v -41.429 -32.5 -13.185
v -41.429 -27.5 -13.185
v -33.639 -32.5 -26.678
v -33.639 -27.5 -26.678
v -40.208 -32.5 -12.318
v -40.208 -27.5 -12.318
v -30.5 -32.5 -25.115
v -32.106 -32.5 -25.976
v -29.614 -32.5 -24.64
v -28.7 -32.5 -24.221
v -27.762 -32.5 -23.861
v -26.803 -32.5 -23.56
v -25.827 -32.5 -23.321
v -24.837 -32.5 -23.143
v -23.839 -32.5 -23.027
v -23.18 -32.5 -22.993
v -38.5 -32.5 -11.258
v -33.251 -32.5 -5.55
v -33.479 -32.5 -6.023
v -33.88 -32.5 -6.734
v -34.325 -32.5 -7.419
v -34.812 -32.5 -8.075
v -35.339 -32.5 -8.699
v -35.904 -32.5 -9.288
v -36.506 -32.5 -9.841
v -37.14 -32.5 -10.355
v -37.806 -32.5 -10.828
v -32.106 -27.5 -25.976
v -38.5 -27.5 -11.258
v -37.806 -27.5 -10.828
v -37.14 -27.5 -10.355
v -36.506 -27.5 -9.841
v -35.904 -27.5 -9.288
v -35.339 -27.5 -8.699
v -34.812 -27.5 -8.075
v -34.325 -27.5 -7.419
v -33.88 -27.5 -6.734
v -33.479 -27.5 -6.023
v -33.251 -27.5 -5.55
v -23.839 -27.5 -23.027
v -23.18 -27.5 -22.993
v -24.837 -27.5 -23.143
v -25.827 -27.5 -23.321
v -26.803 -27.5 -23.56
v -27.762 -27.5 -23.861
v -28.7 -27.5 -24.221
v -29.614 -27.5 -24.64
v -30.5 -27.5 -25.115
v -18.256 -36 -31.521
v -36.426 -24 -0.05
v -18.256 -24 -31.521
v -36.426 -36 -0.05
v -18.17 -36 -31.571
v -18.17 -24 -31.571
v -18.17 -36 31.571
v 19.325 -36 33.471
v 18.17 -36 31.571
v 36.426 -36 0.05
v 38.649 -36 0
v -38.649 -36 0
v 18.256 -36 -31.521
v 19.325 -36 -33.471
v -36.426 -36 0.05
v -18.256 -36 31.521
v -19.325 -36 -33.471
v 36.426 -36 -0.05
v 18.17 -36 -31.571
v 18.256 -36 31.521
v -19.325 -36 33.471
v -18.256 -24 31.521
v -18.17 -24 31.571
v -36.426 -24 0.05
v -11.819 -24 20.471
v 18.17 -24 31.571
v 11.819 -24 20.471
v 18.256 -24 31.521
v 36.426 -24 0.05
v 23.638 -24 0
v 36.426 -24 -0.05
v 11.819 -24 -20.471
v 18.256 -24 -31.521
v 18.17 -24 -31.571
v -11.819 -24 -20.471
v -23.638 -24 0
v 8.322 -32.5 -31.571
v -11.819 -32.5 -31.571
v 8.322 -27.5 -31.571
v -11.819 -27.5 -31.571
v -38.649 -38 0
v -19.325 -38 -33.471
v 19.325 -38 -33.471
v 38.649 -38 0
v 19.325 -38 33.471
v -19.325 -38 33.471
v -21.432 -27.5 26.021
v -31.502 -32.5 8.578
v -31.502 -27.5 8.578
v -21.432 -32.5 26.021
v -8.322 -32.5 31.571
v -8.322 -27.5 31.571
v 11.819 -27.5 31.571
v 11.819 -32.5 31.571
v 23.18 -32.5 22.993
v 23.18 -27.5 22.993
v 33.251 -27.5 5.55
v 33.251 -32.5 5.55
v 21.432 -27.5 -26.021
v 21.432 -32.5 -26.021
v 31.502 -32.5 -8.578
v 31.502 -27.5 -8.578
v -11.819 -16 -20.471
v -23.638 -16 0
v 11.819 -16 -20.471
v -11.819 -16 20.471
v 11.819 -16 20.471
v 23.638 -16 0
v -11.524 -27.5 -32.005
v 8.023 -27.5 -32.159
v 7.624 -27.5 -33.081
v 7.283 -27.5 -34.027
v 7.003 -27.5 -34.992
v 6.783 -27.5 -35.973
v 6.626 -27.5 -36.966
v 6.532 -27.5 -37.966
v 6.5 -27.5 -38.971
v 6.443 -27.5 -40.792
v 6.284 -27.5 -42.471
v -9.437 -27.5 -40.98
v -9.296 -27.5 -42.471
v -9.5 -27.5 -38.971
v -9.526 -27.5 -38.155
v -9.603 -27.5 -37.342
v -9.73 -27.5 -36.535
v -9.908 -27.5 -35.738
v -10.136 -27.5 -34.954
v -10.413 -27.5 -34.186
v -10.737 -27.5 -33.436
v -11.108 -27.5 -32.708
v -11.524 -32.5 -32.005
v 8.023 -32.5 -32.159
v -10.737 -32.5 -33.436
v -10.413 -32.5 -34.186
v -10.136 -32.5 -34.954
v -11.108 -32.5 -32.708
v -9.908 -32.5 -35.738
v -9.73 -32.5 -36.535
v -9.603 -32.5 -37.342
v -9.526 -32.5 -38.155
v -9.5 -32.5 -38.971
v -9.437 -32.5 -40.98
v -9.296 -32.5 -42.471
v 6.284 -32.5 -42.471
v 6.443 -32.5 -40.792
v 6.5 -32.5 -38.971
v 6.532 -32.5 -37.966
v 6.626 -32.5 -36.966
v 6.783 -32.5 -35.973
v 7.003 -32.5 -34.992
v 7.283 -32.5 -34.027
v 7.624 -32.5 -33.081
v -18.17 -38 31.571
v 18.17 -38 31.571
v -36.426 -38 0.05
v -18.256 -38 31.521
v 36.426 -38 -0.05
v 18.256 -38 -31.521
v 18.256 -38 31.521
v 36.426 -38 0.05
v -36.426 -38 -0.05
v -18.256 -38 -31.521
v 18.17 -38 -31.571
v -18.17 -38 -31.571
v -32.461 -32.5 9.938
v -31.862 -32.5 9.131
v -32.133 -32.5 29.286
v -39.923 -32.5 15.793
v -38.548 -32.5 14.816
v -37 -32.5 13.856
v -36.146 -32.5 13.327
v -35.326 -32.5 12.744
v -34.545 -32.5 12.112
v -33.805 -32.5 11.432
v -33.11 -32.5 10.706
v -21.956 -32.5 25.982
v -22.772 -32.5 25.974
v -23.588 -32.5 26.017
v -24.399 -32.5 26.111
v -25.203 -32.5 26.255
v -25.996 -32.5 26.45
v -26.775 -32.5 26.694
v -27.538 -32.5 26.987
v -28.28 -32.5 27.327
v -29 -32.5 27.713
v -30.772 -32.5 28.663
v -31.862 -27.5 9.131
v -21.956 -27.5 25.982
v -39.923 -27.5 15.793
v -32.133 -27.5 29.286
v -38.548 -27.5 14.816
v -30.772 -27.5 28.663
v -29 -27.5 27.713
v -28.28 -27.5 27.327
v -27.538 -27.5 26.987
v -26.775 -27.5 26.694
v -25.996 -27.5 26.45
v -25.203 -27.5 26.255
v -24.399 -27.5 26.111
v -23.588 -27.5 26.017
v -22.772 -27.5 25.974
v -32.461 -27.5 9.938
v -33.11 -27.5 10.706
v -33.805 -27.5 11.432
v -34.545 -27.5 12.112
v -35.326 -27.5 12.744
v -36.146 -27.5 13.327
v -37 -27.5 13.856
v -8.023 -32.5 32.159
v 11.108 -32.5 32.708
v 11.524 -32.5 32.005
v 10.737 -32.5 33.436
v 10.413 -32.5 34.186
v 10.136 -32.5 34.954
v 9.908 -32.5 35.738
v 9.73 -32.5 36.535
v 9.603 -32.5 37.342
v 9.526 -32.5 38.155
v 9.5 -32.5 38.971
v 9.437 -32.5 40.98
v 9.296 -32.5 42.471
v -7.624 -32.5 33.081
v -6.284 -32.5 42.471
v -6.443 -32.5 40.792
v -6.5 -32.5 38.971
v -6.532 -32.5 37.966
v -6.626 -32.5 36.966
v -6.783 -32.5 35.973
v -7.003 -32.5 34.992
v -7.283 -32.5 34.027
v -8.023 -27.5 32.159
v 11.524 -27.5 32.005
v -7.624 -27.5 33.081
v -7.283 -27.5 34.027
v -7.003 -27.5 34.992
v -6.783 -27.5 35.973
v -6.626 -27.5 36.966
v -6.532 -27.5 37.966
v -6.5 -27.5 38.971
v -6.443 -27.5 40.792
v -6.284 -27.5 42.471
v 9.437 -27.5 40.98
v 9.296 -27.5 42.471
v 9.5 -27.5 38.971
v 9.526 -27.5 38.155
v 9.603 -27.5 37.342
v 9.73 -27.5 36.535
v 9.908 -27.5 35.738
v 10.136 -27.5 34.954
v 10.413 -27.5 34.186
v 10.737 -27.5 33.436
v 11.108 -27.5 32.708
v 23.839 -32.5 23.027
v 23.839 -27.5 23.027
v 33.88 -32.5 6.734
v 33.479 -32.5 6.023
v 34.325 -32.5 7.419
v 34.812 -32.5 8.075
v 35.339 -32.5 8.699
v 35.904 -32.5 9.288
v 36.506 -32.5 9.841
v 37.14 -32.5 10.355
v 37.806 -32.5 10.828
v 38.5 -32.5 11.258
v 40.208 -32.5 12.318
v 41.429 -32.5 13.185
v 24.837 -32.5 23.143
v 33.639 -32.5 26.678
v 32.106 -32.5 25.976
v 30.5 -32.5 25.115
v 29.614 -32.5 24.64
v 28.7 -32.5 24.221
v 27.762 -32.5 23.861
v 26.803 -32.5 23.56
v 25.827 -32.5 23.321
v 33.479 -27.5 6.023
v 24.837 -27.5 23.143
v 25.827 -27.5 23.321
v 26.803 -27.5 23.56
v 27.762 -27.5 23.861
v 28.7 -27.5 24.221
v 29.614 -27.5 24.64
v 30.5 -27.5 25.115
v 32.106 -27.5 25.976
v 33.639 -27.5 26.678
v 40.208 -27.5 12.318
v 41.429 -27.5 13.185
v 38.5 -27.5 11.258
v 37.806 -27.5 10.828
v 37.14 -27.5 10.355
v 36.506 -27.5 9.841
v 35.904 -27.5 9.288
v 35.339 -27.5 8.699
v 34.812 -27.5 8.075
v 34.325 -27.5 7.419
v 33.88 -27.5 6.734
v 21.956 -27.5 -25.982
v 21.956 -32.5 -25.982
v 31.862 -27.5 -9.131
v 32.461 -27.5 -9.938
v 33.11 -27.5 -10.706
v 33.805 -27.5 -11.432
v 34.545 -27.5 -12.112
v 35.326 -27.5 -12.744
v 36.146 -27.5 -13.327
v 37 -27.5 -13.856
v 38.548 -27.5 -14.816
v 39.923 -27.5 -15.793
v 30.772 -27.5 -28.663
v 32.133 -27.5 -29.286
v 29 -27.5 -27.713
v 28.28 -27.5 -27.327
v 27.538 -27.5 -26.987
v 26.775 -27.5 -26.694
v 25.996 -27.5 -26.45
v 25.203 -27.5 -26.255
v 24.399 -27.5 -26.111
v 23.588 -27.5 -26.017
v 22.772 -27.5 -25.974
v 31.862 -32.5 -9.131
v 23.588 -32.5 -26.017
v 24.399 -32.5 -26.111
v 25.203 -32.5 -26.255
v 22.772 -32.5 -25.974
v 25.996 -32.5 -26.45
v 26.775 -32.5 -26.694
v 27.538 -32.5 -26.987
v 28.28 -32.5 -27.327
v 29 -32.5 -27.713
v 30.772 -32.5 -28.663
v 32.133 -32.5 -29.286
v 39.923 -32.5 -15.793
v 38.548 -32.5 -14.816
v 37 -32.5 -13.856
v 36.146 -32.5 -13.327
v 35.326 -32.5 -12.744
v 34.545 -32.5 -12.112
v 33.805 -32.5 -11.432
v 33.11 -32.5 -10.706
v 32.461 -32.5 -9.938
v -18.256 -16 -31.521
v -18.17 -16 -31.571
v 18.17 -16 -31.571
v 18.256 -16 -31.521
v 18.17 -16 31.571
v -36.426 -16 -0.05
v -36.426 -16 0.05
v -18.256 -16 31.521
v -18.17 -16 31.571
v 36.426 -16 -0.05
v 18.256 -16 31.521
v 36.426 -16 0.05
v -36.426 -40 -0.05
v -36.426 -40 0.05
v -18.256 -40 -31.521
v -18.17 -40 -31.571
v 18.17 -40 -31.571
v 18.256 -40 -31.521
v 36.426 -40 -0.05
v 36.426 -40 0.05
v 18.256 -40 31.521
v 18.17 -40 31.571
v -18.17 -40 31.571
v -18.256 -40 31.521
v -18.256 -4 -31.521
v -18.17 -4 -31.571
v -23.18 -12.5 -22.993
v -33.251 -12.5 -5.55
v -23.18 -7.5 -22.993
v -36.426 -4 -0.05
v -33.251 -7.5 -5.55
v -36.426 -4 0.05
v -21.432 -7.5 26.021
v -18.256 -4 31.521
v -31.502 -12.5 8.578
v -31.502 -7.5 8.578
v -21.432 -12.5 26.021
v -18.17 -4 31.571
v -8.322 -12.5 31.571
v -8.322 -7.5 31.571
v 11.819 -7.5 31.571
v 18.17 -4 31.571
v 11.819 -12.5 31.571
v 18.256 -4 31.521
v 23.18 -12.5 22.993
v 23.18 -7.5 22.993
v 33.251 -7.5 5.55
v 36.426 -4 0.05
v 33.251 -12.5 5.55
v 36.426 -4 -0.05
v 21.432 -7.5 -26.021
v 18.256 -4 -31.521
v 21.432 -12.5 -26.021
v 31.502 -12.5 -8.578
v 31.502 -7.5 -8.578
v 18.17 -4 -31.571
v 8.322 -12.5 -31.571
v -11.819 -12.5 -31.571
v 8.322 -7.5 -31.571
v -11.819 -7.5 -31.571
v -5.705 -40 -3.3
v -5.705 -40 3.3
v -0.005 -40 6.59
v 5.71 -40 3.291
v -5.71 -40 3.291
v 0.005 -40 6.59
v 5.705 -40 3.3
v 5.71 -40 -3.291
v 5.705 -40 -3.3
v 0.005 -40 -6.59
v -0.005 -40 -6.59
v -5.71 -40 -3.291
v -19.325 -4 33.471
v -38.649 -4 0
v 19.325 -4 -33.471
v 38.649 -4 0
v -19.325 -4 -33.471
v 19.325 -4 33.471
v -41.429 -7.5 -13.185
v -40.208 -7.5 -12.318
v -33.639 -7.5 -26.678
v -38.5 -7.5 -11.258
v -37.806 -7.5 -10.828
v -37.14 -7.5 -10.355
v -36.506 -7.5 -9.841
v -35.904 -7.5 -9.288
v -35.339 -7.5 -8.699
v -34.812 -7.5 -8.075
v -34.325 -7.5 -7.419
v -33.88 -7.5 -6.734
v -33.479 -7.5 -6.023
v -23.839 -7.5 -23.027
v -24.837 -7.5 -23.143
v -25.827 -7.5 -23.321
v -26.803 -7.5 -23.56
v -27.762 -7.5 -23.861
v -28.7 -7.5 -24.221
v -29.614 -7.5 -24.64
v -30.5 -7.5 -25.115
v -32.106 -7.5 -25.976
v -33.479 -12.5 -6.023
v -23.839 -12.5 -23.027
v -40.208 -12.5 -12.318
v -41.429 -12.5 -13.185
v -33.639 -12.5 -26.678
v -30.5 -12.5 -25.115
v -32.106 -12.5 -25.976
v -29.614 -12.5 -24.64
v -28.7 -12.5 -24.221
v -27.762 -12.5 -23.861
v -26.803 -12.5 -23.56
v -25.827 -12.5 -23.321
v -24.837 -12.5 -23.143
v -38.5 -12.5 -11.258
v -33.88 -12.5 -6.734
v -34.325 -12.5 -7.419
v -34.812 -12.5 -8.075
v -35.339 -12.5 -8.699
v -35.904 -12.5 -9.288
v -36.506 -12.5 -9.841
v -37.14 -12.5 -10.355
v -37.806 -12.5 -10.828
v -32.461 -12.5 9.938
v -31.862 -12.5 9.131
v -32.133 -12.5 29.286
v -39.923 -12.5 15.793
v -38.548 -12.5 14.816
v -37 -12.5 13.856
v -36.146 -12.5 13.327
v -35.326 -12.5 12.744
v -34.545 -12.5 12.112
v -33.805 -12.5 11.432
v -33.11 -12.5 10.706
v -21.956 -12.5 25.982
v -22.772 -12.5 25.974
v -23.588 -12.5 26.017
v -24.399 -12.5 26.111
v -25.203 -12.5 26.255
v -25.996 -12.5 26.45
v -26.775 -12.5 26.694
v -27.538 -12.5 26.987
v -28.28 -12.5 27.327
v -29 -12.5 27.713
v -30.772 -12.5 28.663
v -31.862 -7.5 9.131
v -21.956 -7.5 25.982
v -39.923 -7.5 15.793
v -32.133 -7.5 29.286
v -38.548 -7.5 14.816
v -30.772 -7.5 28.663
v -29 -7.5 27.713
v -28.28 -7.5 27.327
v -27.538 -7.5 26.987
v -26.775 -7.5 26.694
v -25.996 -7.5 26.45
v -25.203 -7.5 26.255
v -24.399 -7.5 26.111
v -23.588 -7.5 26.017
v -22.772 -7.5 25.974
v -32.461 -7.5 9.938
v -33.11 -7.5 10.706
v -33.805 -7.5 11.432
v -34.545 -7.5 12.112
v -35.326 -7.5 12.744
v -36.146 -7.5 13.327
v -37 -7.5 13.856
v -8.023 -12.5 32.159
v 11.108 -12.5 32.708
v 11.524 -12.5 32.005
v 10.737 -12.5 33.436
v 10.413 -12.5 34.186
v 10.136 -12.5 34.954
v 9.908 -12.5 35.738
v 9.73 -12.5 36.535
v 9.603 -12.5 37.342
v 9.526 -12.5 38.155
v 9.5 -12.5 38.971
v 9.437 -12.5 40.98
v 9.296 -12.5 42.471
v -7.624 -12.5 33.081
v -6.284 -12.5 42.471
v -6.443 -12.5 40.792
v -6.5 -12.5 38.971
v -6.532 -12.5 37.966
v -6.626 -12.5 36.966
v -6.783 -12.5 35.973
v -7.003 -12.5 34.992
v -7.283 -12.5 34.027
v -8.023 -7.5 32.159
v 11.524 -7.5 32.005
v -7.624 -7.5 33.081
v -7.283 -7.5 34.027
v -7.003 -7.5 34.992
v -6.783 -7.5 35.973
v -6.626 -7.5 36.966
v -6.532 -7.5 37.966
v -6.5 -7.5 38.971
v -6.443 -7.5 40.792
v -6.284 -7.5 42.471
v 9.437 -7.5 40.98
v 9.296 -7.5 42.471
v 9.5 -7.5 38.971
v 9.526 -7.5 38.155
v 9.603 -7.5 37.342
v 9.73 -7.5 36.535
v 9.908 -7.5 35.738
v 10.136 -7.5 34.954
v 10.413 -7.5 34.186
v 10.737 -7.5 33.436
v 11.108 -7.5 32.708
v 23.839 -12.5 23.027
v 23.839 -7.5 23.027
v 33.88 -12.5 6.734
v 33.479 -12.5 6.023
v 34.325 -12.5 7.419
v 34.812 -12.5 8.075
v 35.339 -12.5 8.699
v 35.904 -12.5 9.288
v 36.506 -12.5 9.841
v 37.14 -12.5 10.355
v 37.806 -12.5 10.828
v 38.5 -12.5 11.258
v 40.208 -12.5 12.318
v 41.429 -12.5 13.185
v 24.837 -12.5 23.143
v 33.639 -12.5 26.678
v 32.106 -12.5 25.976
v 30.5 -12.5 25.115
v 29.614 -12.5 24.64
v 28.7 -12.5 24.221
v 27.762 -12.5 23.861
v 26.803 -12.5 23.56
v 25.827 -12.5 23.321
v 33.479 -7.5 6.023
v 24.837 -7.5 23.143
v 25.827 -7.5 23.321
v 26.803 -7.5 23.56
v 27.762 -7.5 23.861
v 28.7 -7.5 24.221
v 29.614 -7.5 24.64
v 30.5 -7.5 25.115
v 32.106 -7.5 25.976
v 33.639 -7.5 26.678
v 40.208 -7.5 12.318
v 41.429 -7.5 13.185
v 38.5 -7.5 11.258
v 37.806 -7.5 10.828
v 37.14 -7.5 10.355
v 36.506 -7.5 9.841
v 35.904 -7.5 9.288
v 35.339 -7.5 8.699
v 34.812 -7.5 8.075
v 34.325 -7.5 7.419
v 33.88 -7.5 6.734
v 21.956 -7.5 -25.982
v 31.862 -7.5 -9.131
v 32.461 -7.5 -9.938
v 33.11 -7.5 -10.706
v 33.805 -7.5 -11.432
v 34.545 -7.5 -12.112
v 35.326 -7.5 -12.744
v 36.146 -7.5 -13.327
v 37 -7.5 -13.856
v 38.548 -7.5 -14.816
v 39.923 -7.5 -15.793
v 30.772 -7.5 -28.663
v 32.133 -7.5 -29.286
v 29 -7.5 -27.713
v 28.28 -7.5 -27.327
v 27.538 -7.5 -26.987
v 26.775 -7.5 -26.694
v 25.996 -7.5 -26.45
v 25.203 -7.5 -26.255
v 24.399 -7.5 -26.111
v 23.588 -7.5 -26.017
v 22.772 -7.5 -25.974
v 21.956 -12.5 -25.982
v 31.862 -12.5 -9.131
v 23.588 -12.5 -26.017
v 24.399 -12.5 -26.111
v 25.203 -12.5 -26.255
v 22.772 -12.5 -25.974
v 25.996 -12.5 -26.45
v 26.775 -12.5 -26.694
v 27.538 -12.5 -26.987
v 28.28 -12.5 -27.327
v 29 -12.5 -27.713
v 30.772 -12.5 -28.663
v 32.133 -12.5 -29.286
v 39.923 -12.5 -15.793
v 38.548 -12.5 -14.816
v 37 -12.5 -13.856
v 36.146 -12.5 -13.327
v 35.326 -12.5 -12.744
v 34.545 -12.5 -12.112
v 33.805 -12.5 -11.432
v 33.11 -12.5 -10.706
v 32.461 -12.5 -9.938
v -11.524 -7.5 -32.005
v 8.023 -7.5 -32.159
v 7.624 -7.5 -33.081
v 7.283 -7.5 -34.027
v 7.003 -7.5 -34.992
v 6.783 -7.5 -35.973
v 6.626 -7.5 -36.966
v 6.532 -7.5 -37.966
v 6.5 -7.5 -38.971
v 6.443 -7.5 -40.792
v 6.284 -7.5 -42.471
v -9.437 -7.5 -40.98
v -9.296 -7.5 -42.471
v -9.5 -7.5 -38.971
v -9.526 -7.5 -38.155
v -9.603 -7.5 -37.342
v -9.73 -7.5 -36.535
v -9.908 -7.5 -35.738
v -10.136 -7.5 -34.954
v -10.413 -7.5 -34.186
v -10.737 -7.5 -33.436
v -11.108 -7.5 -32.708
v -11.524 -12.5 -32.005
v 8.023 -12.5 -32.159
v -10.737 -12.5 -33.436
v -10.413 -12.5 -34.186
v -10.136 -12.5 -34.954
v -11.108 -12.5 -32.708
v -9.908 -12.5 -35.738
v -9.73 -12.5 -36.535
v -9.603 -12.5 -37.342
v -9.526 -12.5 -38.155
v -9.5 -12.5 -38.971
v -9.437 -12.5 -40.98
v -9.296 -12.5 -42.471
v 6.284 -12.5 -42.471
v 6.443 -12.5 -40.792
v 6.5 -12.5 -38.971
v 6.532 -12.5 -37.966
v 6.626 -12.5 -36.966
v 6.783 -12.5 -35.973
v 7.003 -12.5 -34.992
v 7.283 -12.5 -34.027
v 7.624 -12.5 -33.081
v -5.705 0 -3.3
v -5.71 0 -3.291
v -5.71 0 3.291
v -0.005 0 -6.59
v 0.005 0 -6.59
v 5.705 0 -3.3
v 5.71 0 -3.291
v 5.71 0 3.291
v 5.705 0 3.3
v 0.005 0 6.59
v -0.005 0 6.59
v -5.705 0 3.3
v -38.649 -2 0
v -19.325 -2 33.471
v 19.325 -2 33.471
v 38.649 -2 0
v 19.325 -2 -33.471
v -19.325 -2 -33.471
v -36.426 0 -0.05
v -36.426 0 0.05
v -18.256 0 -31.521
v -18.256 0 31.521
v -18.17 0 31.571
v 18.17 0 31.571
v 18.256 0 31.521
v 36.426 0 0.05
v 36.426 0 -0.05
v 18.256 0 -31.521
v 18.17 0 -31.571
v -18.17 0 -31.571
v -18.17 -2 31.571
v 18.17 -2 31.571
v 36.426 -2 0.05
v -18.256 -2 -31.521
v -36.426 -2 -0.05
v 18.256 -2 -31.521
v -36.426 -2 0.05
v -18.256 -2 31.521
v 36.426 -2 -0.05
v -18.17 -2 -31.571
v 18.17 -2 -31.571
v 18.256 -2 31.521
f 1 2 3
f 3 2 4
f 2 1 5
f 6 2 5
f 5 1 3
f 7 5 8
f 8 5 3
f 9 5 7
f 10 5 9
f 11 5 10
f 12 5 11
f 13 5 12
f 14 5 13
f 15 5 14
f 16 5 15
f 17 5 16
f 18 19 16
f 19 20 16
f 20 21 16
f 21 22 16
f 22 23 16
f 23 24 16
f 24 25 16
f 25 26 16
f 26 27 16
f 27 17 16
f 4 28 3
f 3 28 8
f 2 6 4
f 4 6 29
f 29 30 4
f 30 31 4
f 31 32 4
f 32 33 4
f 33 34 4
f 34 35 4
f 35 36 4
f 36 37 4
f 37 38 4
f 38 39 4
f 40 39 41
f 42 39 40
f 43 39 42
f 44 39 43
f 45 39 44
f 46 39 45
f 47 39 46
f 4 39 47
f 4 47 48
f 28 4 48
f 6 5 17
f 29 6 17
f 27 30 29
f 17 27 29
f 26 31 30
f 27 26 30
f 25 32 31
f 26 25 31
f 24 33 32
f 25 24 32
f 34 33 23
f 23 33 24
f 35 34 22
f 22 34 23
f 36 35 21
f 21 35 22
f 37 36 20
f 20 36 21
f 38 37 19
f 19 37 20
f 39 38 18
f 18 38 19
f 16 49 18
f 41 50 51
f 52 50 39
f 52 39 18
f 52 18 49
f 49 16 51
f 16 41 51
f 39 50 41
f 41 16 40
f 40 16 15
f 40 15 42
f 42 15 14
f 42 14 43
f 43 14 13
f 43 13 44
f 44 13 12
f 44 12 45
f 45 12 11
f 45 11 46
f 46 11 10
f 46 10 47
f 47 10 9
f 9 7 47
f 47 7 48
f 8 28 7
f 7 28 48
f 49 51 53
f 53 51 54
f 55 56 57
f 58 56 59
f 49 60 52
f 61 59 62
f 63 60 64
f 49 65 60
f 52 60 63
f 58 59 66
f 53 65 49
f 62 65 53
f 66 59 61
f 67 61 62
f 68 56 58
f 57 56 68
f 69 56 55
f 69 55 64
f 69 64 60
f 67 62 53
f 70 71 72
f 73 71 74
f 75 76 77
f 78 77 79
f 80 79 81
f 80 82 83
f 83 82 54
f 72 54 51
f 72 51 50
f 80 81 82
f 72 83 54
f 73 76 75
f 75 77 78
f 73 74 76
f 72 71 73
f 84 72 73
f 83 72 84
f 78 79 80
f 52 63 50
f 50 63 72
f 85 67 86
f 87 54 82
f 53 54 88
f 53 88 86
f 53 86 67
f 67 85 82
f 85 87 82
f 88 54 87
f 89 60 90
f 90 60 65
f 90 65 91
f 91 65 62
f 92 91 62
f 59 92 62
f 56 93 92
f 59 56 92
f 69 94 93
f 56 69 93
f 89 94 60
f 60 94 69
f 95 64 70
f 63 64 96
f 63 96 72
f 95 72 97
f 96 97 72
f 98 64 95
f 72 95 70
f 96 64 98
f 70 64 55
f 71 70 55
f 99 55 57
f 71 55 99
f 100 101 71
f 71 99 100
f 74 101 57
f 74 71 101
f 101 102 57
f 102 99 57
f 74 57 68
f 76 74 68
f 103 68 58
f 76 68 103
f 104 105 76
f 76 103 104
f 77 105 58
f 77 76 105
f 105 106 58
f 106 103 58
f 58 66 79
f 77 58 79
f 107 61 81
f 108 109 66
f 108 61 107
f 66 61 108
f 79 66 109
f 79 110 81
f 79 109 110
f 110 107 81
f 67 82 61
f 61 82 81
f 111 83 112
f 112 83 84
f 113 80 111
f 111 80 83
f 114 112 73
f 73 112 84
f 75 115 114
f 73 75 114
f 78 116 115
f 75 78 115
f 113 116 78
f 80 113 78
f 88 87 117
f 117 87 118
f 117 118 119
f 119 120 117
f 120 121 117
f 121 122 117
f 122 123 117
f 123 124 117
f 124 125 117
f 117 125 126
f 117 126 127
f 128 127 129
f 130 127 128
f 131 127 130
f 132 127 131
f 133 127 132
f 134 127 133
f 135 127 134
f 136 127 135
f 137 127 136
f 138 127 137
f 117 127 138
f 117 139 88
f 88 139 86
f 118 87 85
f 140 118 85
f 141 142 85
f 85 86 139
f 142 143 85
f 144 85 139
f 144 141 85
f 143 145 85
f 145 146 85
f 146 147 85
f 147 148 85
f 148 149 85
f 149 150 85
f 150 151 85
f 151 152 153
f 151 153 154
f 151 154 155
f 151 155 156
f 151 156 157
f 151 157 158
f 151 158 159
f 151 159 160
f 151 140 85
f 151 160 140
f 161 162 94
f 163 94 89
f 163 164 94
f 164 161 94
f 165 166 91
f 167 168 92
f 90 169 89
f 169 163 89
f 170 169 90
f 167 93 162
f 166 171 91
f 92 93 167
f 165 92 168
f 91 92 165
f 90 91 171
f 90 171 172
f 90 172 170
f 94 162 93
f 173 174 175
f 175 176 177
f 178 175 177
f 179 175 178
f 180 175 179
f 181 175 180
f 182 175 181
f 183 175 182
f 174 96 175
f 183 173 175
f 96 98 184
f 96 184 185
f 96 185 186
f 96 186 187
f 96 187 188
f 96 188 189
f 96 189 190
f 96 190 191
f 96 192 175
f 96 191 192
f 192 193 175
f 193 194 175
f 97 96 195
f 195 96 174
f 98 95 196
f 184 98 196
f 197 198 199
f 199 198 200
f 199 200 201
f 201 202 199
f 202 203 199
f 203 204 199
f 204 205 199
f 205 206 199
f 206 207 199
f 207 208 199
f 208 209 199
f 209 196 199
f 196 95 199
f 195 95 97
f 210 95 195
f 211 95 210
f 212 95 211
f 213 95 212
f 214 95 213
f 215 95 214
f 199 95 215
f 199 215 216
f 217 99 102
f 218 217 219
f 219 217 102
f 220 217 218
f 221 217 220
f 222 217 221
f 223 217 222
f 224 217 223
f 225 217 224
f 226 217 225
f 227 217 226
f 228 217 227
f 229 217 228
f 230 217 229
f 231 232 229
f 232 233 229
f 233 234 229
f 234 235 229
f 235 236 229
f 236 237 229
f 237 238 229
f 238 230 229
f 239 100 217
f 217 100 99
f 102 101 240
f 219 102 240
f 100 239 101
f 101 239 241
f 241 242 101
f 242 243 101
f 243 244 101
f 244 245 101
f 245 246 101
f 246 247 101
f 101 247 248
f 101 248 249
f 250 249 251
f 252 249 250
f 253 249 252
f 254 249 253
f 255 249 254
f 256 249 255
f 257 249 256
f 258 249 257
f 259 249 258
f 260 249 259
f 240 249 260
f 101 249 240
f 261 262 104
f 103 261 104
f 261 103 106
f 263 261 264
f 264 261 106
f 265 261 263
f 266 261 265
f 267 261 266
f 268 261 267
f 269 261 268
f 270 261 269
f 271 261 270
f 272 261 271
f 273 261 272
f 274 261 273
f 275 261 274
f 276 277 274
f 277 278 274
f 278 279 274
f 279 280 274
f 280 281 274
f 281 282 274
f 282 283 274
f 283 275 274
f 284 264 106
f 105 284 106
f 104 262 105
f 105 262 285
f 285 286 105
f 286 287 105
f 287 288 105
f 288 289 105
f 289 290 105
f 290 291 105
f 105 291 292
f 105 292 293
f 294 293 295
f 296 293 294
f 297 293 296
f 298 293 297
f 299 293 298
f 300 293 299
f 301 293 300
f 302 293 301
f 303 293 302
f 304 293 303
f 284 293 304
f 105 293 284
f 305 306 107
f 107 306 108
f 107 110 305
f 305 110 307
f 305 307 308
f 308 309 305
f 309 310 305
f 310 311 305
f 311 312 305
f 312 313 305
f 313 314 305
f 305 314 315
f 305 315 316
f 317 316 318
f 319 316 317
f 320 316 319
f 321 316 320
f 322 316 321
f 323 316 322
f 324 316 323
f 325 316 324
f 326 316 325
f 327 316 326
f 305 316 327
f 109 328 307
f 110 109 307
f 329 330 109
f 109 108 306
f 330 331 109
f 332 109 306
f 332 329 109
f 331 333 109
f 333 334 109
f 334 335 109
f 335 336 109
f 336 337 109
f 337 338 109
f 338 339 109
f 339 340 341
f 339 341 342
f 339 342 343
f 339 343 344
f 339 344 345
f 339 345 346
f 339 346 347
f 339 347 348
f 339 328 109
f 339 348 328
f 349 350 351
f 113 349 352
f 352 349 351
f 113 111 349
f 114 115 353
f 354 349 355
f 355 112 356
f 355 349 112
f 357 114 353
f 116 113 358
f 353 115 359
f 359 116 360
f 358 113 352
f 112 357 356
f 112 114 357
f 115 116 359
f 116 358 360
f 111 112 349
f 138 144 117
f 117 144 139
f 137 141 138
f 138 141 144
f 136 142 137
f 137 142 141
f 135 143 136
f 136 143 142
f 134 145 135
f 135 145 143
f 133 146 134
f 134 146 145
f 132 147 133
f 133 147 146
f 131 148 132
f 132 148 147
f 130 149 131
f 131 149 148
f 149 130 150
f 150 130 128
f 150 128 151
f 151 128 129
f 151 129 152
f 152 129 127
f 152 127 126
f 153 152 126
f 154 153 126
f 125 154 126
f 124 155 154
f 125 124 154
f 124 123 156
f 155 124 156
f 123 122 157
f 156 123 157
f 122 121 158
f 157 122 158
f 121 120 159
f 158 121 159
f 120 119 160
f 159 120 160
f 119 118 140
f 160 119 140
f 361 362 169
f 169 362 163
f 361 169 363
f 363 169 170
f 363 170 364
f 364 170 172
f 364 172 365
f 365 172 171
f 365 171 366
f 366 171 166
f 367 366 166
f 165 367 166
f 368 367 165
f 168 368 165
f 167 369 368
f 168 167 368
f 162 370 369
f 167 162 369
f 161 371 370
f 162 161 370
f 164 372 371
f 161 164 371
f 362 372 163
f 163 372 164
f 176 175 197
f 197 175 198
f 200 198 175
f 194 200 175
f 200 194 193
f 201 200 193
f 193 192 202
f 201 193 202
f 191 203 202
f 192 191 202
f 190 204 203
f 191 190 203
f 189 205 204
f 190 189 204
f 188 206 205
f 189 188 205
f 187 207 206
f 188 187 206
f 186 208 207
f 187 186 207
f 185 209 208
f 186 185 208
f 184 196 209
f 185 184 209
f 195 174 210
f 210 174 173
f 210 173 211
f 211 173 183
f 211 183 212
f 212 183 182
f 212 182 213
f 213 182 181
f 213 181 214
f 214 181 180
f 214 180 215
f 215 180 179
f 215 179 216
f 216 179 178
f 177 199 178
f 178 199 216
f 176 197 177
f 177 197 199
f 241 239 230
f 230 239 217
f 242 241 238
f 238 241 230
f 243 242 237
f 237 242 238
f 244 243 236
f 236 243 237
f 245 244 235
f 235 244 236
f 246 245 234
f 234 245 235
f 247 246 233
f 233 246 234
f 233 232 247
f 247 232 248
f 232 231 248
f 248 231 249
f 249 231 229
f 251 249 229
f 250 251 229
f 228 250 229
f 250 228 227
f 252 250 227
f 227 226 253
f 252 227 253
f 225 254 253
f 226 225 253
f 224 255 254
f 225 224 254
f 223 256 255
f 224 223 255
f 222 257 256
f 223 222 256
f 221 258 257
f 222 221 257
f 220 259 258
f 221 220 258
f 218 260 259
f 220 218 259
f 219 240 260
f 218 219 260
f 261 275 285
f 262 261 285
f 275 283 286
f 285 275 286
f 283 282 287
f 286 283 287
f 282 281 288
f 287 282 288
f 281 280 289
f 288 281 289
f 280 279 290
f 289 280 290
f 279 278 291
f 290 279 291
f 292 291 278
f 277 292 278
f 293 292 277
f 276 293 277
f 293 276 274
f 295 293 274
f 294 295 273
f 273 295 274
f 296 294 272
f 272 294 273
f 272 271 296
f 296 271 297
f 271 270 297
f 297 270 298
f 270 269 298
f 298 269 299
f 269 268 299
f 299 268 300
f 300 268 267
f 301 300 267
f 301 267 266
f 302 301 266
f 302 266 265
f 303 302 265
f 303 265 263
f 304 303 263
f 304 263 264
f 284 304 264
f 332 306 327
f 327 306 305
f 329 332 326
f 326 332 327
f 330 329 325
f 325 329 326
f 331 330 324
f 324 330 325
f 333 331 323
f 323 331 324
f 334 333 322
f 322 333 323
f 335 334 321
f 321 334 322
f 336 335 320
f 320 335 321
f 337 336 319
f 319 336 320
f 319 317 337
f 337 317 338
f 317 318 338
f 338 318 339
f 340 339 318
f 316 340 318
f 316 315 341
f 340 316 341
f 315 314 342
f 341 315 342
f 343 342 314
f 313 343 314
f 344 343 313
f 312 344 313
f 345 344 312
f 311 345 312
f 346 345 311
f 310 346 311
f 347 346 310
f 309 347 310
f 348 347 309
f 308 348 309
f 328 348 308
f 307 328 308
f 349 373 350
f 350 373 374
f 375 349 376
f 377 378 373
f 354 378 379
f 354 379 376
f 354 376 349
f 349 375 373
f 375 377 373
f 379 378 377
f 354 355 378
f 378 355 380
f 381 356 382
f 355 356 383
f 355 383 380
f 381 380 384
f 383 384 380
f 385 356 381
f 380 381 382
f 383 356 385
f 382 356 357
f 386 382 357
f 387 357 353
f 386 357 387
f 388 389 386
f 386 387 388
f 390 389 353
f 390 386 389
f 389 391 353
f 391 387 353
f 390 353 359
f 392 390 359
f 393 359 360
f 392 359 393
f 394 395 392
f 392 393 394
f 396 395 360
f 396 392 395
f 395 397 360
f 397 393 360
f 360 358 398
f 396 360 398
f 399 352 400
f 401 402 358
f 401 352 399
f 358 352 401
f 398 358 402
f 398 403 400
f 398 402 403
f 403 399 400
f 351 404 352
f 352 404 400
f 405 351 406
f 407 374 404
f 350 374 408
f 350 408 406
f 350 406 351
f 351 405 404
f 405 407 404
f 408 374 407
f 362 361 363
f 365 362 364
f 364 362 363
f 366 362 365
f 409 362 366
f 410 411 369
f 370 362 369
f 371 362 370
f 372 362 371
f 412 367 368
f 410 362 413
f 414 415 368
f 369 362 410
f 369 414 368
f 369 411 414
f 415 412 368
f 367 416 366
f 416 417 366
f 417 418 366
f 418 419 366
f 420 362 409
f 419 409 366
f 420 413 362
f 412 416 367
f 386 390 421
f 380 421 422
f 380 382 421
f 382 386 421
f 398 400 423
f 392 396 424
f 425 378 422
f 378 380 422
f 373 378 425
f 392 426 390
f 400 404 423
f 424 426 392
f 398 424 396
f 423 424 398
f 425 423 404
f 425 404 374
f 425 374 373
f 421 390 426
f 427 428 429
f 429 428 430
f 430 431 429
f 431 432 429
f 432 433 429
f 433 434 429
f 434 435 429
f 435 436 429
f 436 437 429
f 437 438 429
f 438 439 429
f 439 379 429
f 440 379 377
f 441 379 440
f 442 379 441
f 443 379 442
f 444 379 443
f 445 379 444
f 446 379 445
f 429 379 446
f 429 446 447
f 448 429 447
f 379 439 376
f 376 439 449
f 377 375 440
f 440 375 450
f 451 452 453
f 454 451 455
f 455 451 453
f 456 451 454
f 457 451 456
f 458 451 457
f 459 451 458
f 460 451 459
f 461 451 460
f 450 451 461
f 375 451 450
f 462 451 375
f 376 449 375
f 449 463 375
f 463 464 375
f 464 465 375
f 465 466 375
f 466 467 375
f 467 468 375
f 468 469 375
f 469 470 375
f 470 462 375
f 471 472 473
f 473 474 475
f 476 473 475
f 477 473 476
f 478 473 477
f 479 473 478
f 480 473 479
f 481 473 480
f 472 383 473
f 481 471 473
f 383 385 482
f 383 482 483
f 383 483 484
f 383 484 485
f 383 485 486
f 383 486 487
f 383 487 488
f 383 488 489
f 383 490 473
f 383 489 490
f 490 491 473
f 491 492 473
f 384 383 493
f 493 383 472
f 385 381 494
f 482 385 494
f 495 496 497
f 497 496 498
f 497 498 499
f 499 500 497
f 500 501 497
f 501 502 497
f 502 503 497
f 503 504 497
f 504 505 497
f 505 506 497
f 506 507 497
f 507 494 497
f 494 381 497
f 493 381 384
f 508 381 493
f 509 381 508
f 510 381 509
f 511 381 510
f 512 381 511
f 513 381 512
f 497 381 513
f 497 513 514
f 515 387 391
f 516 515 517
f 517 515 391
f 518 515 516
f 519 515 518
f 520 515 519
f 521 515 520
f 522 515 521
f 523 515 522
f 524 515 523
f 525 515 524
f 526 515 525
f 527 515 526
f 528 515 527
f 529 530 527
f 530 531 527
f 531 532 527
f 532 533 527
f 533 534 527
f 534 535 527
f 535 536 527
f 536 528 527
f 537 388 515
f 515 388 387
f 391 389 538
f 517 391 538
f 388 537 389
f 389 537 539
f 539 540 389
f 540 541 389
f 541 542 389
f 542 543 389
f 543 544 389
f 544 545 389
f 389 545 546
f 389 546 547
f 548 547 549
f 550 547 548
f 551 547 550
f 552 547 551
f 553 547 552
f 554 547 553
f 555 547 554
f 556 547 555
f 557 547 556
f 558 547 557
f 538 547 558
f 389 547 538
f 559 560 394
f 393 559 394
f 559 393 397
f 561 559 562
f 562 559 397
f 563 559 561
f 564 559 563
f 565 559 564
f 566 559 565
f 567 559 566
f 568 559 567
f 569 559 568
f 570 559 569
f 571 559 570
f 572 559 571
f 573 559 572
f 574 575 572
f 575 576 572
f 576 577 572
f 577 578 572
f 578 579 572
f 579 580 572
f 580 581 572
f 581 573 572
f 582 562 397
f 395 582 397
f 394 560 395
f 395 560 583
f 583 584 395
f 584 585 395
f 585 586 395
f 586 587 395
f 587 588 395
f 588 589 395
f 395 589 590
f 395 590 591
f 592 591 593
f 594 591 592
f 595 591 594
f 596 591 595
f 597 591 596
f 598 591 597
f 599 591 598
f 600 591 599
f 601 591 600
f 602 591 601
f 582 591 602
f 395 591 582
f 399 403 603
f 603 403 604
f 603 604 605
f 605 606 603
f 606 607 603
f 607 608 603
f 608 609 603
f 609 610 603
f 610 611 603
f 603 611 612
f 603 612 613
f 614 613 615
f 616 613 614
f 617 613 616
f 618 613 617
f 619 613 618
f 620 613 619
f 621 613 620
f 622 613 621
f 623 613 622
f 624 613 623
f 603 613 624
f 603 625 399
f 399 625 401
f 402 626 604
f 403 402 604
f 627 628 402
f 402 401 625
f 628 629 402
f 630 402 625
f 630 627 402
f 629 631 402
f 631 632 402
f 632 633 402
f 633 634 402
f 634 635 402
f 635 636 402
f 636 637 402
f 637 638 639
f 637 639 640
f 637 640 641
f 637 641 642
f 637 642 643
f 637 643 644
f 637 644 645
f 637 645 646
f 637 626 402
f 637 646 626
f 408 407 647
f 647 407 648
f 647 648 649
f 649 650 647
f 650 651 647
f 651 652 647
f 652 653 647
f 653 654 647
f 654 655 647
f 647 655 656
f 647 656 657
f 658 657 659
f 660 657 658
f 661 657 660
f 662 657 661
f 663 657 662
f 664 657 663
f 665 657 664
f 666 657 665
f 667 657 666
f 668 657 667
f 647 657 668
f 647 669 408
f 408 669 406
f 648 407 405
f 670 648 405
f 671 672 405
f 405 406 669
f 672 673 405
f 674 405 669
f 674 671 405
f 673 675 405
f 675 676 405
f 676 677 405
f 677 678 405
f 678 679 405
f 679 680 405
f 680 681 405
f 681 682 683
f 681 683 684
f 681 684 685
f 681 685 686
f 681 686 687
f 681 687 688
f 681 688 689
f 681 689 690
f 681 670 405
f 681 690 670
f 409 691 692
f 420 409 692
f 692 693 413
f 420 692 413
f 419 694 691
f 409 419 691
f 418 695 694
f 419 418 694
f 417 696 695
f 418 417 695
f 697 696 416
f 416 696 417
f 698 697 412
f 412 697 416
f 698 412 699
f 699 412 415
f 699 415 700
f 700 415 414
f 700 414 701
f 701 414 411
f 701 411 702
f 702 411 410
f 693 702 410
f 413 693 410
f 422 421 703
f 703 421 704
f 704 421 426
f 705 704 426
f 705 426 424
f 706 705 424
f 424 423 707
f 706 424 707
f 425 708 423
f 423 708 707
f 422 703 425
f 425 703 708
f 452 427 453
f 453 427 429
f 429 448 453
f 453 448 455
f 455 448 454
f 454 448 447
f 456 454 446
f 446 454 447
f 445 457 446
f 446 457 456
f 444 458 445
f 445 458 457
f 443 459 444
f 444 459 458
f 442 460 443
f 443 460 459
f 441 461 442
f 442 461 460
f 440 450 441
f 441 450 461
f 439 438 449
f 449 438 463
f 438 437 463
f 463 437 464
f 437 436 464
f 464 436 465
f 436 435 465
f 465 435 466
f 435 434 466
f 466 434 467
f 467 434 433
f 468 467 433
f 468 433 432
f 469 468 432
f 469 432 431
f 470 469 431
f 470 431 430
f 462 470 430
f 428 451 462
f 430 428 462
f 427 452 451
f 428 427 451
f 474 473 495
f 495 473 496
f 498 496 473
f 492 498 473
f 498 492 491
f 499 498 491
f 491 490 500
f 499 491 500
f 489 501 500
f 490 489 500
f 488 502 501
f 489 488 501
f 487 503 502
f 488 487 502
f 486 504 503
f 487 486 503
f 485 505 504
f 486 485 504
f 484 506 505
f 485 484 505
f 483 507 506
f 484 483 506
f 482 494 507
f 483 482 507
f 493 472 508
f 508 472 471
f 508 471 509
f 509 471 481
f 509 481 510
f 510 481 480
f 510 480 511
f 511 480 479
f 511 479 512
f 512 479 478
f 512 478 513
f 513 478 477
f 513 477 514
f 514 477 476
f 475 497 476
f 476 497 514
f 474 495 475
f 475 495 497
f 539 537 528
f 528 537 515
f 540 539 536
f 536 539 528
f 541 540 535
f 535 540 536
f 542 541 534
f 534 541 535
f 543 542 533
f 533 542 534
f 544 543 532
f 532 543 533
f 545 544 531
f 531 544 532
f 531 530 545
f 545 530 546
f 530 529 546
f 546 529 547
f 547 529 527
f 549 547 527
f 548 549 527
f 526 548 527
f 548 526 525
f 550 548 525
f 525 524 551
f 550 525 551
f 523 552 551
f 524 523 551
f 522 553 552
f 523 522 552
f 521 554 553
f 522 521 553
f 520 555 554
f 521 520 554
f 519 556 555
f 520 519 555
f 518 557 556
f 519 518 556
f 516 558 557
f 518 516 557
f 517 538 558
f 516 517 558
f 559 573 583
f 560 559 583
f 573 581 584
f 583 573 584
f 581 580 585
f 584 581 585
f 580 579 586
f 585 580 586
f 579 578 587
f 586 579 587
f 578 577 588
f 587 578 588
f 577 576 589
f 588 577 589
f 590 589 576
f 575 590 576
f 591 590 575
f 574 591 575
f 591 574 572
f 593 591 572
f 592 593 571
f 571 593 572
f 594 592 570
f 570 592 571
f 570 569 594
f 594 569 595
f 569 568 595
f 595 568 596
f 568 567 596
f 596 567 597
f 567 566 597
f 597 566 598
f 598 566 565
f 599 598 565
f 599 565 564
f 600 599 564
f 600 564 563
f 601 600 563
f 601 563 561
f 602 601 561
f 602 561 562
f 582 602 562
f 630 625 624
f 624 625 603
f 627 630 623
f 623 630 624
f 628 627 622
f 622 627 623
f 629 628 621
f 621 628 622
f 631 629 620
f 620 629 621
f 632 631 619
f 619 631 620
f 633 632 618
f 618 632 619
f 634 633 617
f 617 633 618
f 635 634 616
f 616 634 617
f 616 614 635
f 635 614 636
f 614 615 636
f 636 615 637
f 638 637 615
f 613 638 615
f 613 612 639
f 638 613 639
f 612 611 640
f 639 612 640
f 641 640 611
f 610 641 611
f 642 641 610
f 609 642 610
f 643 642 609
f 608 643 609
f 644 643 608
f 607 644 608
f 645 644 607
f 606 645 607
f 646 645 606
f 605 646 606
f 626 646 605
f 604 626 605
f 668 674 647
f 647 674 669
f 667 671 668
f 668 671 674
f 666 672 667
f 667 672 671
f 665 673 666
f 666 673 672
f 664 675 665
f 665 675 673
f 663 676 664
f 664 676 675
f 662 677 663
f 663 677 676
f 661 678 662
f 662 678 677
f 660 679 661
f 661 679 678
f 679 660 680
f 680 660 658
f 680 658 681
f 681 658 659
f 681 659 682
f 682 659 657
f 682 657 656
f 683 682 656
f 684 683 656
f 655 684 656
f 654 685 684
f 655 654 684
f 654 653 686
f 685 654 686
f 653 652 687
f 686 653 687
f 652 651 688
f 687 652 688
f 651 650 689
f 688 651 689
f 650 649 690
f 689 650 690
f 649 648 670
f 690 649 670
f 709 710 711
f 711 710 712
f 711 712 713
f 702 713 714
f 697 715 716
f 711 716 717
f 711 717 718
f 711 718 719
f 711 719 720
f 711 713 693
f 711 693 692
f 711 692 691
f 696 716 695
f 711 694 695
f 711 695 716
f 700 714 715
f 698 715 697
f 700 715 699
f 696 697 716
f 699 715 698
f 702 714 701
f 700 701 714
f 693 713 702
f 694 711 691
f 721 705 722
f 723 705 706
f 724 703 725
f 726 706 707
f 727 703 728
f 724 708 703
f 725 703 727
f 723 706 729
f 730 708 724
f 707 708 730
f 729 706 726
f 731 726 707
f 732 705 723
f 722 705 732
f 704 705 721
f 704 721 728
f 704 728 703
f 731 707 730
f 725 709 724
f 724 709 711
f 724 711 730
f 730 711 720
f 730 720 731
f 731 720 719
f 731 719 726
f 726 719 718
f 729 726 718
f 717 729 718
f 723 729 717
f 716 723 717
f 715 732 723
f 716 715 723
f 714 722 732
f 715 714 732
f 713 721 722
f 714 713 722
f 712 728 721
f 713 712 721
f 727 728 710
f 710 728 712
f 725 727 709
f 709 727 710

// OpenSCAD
$fn = 100;

alT = 45; // Abstand laengs Transportzahn
olT = 15;

L = 1*alT; // Laenge
B = 40;	// Breite
NF = 3; // Anzahl Flansche
rF = 6/2; // Innenradius Flansch
sF = 0.2; // Spiel Flansch auf beweglicher Seite
aFr	= 3; // Abstand Flansch radial
aFa	= 0.5; // Abstand Flansch axial
Hb = 15; // Hoehe Bodenelement
Ht = 25; // Gesamthoehe
angP = 45; // Winkel Profil
LP = 30;

tR = 3;	// Tiefe Rillen fuer Laufrolle
bR = 4; // Breite Rillen fuer Laufrolle
aR = 17; // Abstand Rillen fuer Laufrolle
sR = 1; // Spiel Rillen

tT = 12; // Tiefe Transportzahn
bT = 7; // Breite Transportzahn
lT = 18; // Längen Tranportzahn
sT = 1; // Spiel Transportzahn

asT = 10; // Abstand seitlich Transportzahn

// Nabe
Ni = 6; // Anzahl Kanten
ri = 11.4/2; // Abstand Kante zu Mittelpunkt


NC = 6; // Anzahl Kettenglieder im Eingriff

bFZ = 6; // Breite Fuehrungszahn
hFZ = 10; // Hoehe Fuehrungszahn
sFZ = 1; // Spiel Fuehrungszahn


NR = round(B/aR);
Rerr = (B/aR-NR)*aR/2;

NT = round(L/alT);

// Berechnungen fuer Flansche und deren Abstaende
bfg = B/2-aFa*(NF-1);
bf1 = bfg / NF;
bf2 = bfg / (NF-1);
bf1n = bf2 + aFa*2;
bf2n = bf1 + aFa*2;

angM = 360/NC;

Lr = L;


// Korrektur, damit die Stege fuer die Rillen exakt aufeinander stossen
r = Lr/2/tan(angM/2) - Hb/2;
c = (r+tR)/r;

difference(){
	union(){
		hull(){
			for(i = [0:NC-1]){
				rotate([0,-angM*i,0]) translate([+Hb/2*tan(angM/2)-Lr/2,-B,r]){
					cube([Lr-Hb*tan(angM/2),B,0.1]);
				}
			}
		}
		for(i = [0:NC-1]){
			rotate([0,-angM*i,0]) translate([-Lr/2+(Hb/2-tR+sR)*tan(angM/2),0,r]){
				for(j = [0:-NR]){
					translate([0,j*aR-bR/2-Rerr+sR,0]) cube([Lr-(Hb/2-tR+sR)*2*tan(angM/2),bR-sR*2,tR-sR]);
				}
			}
		}
	}

	rotate([90,0,0])
	hull(){
		for(i = [0:Ni-1]){
			rotate([0,0,i*360/Ni]) translate([ri,-ri*tan(360/2/Ni),-1]) cube([0.01,2*ri*tan(360/2/Ni),B+2]);
		}
	}

	for(i = [0:NC-1]){
		rotate([0,-angM*i,0]) translate([-Lr/2,-B/2-bFZ/2-sFZ,r-hFZ-sFZ]){
			cube([Lr,bFZ+sFZ*2,hFZ+sFZ+tR+1]);
		}
	}
}


for(i = [0:NC-1]){
	rotate([0,-angM*i,0]){
		translate([-Lr/2, 0, r]){
			for(j = [0:NT-1]){
				intersection(){
					union(){
						translate([j*alT+olT+sT,-bT/2-B/2-asT+sT,0]) cube([lT-sT*2,bT-sT*2,tT-sT]);
						translate([j*alT+olT+sT,-bT/2-B/2+asT+sT,0]) cube([lT-sT*2,bT-sT*2,tT-sT]);
					}
					translate([0,0,Hb/2]) rotate([90,0,0]) cylinder(r=j*alT+olT+lT-sT,h=B);
					translate([Lr,0,Hb/2]) rotate([90,0,0]) cylinder(r=Lr-(j*alT+olT)-sT,h=B);
				}
				difference(){
					union(){
						translate([sqrt(pow(j*alT +olT+sT,2)-pow(Hb/2,2)),-bT/2-B/2-asT+sT,0]) cube([(j*alT +olT+sT) -sqrt(pow(j*alT +olT+sT,2)-pow(Hb/2,2)) +(lT-sT*2)+(Lr-(j*alT+olT+lT)+sT) -sqrt(pow(Lr-(j*alT+olT+lT)+sT,2)-pow(Hb/2,2)) ,bT-sT*2,Hb/2]);
						translate([sqrt(pow(j*alT +olT+sT,2)-pow(Hb/2,2)),-bT/2-B/2+asT+sT,0]) cube([(j*alT +olT+sT) -sqrt(pow(j*alT +olT+sT,2)-pow(Hb/2,2)) +(lT-sT*2)+(Lr-(j*alT+olT+lT)+sT) -sqrt(pow(Lr-(j*alT+olT+lT)+sT,2)-pow(Hb/2,2)) ,bT-sT*2,Hb/2]);
					}
					translate([0,0,Hb/2]) rotate([90,0,0]) cylinder(r=j*alT+olT+sT,h=B);
					translate([Lr,0,Hb/2]) rotate([90,0,0]) cylinder(r=Lr-(j*alT+olT+lT)+sT,h=B);

				}
			}

			// Kettenglied ---
			translate([0,0,Hb/2])
			%union(){
				difference(){
					hull(){
						rotate([90,0,0]) cylinder(r=Hb/2, h=B);
						translate([L,0,0]) rotate([90,0,0]) cylinder(r=Hb/2, h=B);
					}
					translate([0,1,0]) rotate([90,0,0]) cylinder(r=rF+sF, h=B+2);
					translate([L,1,0]) rotate([90,0,0]) cylinder(r=rF, h=B+2);
				
					for(i = [0:NF-1]){
						translate([0,-i*(bf2+bf2n)+aFa,0]) rotate([90,0,0]) cylinder(r=Hb/2+aFr, h=bf2n);
					}
					for(i = [0:NF-2]){
						translate([L,-i*(bf1+bf1n)-(bf2n+bf1)/2+aFa,0]) rotate([90,0,0]) cylinder(r=Hb/2+aFr, h=bf1n);
					}
				
					for(i = [0:-NR]){
						translate([-Hb-1,(i)*aR-bR/2-Rerr,-Hb/2-1]) cube([L+Hb*2+2,bR,tR+1]);
					}
					
					for(i = [-2:NT]){
						translate([i*alT +olT,-bT/2-B/2-asT,-Hb/2-1]) cube([lT,bT,tT+1]);
						translate([i*alT +olT,-bT/2-B/2+asT,-Hb/2-1]) cube([lT,bT,tT+1]);
					}
				}
				
				hull(){
					translate([L/2-LP/2,-B,Hb/2]) cube([LP,B,0.1]);
					translate([L/2-LP/2+(Ht-Hb)*tan(angP),-B,Ht-Hb/2]) cube([LP-2*(Ht-Hb)*tan(angP),B,0.1]);
				}
			}
		}
	}
}
